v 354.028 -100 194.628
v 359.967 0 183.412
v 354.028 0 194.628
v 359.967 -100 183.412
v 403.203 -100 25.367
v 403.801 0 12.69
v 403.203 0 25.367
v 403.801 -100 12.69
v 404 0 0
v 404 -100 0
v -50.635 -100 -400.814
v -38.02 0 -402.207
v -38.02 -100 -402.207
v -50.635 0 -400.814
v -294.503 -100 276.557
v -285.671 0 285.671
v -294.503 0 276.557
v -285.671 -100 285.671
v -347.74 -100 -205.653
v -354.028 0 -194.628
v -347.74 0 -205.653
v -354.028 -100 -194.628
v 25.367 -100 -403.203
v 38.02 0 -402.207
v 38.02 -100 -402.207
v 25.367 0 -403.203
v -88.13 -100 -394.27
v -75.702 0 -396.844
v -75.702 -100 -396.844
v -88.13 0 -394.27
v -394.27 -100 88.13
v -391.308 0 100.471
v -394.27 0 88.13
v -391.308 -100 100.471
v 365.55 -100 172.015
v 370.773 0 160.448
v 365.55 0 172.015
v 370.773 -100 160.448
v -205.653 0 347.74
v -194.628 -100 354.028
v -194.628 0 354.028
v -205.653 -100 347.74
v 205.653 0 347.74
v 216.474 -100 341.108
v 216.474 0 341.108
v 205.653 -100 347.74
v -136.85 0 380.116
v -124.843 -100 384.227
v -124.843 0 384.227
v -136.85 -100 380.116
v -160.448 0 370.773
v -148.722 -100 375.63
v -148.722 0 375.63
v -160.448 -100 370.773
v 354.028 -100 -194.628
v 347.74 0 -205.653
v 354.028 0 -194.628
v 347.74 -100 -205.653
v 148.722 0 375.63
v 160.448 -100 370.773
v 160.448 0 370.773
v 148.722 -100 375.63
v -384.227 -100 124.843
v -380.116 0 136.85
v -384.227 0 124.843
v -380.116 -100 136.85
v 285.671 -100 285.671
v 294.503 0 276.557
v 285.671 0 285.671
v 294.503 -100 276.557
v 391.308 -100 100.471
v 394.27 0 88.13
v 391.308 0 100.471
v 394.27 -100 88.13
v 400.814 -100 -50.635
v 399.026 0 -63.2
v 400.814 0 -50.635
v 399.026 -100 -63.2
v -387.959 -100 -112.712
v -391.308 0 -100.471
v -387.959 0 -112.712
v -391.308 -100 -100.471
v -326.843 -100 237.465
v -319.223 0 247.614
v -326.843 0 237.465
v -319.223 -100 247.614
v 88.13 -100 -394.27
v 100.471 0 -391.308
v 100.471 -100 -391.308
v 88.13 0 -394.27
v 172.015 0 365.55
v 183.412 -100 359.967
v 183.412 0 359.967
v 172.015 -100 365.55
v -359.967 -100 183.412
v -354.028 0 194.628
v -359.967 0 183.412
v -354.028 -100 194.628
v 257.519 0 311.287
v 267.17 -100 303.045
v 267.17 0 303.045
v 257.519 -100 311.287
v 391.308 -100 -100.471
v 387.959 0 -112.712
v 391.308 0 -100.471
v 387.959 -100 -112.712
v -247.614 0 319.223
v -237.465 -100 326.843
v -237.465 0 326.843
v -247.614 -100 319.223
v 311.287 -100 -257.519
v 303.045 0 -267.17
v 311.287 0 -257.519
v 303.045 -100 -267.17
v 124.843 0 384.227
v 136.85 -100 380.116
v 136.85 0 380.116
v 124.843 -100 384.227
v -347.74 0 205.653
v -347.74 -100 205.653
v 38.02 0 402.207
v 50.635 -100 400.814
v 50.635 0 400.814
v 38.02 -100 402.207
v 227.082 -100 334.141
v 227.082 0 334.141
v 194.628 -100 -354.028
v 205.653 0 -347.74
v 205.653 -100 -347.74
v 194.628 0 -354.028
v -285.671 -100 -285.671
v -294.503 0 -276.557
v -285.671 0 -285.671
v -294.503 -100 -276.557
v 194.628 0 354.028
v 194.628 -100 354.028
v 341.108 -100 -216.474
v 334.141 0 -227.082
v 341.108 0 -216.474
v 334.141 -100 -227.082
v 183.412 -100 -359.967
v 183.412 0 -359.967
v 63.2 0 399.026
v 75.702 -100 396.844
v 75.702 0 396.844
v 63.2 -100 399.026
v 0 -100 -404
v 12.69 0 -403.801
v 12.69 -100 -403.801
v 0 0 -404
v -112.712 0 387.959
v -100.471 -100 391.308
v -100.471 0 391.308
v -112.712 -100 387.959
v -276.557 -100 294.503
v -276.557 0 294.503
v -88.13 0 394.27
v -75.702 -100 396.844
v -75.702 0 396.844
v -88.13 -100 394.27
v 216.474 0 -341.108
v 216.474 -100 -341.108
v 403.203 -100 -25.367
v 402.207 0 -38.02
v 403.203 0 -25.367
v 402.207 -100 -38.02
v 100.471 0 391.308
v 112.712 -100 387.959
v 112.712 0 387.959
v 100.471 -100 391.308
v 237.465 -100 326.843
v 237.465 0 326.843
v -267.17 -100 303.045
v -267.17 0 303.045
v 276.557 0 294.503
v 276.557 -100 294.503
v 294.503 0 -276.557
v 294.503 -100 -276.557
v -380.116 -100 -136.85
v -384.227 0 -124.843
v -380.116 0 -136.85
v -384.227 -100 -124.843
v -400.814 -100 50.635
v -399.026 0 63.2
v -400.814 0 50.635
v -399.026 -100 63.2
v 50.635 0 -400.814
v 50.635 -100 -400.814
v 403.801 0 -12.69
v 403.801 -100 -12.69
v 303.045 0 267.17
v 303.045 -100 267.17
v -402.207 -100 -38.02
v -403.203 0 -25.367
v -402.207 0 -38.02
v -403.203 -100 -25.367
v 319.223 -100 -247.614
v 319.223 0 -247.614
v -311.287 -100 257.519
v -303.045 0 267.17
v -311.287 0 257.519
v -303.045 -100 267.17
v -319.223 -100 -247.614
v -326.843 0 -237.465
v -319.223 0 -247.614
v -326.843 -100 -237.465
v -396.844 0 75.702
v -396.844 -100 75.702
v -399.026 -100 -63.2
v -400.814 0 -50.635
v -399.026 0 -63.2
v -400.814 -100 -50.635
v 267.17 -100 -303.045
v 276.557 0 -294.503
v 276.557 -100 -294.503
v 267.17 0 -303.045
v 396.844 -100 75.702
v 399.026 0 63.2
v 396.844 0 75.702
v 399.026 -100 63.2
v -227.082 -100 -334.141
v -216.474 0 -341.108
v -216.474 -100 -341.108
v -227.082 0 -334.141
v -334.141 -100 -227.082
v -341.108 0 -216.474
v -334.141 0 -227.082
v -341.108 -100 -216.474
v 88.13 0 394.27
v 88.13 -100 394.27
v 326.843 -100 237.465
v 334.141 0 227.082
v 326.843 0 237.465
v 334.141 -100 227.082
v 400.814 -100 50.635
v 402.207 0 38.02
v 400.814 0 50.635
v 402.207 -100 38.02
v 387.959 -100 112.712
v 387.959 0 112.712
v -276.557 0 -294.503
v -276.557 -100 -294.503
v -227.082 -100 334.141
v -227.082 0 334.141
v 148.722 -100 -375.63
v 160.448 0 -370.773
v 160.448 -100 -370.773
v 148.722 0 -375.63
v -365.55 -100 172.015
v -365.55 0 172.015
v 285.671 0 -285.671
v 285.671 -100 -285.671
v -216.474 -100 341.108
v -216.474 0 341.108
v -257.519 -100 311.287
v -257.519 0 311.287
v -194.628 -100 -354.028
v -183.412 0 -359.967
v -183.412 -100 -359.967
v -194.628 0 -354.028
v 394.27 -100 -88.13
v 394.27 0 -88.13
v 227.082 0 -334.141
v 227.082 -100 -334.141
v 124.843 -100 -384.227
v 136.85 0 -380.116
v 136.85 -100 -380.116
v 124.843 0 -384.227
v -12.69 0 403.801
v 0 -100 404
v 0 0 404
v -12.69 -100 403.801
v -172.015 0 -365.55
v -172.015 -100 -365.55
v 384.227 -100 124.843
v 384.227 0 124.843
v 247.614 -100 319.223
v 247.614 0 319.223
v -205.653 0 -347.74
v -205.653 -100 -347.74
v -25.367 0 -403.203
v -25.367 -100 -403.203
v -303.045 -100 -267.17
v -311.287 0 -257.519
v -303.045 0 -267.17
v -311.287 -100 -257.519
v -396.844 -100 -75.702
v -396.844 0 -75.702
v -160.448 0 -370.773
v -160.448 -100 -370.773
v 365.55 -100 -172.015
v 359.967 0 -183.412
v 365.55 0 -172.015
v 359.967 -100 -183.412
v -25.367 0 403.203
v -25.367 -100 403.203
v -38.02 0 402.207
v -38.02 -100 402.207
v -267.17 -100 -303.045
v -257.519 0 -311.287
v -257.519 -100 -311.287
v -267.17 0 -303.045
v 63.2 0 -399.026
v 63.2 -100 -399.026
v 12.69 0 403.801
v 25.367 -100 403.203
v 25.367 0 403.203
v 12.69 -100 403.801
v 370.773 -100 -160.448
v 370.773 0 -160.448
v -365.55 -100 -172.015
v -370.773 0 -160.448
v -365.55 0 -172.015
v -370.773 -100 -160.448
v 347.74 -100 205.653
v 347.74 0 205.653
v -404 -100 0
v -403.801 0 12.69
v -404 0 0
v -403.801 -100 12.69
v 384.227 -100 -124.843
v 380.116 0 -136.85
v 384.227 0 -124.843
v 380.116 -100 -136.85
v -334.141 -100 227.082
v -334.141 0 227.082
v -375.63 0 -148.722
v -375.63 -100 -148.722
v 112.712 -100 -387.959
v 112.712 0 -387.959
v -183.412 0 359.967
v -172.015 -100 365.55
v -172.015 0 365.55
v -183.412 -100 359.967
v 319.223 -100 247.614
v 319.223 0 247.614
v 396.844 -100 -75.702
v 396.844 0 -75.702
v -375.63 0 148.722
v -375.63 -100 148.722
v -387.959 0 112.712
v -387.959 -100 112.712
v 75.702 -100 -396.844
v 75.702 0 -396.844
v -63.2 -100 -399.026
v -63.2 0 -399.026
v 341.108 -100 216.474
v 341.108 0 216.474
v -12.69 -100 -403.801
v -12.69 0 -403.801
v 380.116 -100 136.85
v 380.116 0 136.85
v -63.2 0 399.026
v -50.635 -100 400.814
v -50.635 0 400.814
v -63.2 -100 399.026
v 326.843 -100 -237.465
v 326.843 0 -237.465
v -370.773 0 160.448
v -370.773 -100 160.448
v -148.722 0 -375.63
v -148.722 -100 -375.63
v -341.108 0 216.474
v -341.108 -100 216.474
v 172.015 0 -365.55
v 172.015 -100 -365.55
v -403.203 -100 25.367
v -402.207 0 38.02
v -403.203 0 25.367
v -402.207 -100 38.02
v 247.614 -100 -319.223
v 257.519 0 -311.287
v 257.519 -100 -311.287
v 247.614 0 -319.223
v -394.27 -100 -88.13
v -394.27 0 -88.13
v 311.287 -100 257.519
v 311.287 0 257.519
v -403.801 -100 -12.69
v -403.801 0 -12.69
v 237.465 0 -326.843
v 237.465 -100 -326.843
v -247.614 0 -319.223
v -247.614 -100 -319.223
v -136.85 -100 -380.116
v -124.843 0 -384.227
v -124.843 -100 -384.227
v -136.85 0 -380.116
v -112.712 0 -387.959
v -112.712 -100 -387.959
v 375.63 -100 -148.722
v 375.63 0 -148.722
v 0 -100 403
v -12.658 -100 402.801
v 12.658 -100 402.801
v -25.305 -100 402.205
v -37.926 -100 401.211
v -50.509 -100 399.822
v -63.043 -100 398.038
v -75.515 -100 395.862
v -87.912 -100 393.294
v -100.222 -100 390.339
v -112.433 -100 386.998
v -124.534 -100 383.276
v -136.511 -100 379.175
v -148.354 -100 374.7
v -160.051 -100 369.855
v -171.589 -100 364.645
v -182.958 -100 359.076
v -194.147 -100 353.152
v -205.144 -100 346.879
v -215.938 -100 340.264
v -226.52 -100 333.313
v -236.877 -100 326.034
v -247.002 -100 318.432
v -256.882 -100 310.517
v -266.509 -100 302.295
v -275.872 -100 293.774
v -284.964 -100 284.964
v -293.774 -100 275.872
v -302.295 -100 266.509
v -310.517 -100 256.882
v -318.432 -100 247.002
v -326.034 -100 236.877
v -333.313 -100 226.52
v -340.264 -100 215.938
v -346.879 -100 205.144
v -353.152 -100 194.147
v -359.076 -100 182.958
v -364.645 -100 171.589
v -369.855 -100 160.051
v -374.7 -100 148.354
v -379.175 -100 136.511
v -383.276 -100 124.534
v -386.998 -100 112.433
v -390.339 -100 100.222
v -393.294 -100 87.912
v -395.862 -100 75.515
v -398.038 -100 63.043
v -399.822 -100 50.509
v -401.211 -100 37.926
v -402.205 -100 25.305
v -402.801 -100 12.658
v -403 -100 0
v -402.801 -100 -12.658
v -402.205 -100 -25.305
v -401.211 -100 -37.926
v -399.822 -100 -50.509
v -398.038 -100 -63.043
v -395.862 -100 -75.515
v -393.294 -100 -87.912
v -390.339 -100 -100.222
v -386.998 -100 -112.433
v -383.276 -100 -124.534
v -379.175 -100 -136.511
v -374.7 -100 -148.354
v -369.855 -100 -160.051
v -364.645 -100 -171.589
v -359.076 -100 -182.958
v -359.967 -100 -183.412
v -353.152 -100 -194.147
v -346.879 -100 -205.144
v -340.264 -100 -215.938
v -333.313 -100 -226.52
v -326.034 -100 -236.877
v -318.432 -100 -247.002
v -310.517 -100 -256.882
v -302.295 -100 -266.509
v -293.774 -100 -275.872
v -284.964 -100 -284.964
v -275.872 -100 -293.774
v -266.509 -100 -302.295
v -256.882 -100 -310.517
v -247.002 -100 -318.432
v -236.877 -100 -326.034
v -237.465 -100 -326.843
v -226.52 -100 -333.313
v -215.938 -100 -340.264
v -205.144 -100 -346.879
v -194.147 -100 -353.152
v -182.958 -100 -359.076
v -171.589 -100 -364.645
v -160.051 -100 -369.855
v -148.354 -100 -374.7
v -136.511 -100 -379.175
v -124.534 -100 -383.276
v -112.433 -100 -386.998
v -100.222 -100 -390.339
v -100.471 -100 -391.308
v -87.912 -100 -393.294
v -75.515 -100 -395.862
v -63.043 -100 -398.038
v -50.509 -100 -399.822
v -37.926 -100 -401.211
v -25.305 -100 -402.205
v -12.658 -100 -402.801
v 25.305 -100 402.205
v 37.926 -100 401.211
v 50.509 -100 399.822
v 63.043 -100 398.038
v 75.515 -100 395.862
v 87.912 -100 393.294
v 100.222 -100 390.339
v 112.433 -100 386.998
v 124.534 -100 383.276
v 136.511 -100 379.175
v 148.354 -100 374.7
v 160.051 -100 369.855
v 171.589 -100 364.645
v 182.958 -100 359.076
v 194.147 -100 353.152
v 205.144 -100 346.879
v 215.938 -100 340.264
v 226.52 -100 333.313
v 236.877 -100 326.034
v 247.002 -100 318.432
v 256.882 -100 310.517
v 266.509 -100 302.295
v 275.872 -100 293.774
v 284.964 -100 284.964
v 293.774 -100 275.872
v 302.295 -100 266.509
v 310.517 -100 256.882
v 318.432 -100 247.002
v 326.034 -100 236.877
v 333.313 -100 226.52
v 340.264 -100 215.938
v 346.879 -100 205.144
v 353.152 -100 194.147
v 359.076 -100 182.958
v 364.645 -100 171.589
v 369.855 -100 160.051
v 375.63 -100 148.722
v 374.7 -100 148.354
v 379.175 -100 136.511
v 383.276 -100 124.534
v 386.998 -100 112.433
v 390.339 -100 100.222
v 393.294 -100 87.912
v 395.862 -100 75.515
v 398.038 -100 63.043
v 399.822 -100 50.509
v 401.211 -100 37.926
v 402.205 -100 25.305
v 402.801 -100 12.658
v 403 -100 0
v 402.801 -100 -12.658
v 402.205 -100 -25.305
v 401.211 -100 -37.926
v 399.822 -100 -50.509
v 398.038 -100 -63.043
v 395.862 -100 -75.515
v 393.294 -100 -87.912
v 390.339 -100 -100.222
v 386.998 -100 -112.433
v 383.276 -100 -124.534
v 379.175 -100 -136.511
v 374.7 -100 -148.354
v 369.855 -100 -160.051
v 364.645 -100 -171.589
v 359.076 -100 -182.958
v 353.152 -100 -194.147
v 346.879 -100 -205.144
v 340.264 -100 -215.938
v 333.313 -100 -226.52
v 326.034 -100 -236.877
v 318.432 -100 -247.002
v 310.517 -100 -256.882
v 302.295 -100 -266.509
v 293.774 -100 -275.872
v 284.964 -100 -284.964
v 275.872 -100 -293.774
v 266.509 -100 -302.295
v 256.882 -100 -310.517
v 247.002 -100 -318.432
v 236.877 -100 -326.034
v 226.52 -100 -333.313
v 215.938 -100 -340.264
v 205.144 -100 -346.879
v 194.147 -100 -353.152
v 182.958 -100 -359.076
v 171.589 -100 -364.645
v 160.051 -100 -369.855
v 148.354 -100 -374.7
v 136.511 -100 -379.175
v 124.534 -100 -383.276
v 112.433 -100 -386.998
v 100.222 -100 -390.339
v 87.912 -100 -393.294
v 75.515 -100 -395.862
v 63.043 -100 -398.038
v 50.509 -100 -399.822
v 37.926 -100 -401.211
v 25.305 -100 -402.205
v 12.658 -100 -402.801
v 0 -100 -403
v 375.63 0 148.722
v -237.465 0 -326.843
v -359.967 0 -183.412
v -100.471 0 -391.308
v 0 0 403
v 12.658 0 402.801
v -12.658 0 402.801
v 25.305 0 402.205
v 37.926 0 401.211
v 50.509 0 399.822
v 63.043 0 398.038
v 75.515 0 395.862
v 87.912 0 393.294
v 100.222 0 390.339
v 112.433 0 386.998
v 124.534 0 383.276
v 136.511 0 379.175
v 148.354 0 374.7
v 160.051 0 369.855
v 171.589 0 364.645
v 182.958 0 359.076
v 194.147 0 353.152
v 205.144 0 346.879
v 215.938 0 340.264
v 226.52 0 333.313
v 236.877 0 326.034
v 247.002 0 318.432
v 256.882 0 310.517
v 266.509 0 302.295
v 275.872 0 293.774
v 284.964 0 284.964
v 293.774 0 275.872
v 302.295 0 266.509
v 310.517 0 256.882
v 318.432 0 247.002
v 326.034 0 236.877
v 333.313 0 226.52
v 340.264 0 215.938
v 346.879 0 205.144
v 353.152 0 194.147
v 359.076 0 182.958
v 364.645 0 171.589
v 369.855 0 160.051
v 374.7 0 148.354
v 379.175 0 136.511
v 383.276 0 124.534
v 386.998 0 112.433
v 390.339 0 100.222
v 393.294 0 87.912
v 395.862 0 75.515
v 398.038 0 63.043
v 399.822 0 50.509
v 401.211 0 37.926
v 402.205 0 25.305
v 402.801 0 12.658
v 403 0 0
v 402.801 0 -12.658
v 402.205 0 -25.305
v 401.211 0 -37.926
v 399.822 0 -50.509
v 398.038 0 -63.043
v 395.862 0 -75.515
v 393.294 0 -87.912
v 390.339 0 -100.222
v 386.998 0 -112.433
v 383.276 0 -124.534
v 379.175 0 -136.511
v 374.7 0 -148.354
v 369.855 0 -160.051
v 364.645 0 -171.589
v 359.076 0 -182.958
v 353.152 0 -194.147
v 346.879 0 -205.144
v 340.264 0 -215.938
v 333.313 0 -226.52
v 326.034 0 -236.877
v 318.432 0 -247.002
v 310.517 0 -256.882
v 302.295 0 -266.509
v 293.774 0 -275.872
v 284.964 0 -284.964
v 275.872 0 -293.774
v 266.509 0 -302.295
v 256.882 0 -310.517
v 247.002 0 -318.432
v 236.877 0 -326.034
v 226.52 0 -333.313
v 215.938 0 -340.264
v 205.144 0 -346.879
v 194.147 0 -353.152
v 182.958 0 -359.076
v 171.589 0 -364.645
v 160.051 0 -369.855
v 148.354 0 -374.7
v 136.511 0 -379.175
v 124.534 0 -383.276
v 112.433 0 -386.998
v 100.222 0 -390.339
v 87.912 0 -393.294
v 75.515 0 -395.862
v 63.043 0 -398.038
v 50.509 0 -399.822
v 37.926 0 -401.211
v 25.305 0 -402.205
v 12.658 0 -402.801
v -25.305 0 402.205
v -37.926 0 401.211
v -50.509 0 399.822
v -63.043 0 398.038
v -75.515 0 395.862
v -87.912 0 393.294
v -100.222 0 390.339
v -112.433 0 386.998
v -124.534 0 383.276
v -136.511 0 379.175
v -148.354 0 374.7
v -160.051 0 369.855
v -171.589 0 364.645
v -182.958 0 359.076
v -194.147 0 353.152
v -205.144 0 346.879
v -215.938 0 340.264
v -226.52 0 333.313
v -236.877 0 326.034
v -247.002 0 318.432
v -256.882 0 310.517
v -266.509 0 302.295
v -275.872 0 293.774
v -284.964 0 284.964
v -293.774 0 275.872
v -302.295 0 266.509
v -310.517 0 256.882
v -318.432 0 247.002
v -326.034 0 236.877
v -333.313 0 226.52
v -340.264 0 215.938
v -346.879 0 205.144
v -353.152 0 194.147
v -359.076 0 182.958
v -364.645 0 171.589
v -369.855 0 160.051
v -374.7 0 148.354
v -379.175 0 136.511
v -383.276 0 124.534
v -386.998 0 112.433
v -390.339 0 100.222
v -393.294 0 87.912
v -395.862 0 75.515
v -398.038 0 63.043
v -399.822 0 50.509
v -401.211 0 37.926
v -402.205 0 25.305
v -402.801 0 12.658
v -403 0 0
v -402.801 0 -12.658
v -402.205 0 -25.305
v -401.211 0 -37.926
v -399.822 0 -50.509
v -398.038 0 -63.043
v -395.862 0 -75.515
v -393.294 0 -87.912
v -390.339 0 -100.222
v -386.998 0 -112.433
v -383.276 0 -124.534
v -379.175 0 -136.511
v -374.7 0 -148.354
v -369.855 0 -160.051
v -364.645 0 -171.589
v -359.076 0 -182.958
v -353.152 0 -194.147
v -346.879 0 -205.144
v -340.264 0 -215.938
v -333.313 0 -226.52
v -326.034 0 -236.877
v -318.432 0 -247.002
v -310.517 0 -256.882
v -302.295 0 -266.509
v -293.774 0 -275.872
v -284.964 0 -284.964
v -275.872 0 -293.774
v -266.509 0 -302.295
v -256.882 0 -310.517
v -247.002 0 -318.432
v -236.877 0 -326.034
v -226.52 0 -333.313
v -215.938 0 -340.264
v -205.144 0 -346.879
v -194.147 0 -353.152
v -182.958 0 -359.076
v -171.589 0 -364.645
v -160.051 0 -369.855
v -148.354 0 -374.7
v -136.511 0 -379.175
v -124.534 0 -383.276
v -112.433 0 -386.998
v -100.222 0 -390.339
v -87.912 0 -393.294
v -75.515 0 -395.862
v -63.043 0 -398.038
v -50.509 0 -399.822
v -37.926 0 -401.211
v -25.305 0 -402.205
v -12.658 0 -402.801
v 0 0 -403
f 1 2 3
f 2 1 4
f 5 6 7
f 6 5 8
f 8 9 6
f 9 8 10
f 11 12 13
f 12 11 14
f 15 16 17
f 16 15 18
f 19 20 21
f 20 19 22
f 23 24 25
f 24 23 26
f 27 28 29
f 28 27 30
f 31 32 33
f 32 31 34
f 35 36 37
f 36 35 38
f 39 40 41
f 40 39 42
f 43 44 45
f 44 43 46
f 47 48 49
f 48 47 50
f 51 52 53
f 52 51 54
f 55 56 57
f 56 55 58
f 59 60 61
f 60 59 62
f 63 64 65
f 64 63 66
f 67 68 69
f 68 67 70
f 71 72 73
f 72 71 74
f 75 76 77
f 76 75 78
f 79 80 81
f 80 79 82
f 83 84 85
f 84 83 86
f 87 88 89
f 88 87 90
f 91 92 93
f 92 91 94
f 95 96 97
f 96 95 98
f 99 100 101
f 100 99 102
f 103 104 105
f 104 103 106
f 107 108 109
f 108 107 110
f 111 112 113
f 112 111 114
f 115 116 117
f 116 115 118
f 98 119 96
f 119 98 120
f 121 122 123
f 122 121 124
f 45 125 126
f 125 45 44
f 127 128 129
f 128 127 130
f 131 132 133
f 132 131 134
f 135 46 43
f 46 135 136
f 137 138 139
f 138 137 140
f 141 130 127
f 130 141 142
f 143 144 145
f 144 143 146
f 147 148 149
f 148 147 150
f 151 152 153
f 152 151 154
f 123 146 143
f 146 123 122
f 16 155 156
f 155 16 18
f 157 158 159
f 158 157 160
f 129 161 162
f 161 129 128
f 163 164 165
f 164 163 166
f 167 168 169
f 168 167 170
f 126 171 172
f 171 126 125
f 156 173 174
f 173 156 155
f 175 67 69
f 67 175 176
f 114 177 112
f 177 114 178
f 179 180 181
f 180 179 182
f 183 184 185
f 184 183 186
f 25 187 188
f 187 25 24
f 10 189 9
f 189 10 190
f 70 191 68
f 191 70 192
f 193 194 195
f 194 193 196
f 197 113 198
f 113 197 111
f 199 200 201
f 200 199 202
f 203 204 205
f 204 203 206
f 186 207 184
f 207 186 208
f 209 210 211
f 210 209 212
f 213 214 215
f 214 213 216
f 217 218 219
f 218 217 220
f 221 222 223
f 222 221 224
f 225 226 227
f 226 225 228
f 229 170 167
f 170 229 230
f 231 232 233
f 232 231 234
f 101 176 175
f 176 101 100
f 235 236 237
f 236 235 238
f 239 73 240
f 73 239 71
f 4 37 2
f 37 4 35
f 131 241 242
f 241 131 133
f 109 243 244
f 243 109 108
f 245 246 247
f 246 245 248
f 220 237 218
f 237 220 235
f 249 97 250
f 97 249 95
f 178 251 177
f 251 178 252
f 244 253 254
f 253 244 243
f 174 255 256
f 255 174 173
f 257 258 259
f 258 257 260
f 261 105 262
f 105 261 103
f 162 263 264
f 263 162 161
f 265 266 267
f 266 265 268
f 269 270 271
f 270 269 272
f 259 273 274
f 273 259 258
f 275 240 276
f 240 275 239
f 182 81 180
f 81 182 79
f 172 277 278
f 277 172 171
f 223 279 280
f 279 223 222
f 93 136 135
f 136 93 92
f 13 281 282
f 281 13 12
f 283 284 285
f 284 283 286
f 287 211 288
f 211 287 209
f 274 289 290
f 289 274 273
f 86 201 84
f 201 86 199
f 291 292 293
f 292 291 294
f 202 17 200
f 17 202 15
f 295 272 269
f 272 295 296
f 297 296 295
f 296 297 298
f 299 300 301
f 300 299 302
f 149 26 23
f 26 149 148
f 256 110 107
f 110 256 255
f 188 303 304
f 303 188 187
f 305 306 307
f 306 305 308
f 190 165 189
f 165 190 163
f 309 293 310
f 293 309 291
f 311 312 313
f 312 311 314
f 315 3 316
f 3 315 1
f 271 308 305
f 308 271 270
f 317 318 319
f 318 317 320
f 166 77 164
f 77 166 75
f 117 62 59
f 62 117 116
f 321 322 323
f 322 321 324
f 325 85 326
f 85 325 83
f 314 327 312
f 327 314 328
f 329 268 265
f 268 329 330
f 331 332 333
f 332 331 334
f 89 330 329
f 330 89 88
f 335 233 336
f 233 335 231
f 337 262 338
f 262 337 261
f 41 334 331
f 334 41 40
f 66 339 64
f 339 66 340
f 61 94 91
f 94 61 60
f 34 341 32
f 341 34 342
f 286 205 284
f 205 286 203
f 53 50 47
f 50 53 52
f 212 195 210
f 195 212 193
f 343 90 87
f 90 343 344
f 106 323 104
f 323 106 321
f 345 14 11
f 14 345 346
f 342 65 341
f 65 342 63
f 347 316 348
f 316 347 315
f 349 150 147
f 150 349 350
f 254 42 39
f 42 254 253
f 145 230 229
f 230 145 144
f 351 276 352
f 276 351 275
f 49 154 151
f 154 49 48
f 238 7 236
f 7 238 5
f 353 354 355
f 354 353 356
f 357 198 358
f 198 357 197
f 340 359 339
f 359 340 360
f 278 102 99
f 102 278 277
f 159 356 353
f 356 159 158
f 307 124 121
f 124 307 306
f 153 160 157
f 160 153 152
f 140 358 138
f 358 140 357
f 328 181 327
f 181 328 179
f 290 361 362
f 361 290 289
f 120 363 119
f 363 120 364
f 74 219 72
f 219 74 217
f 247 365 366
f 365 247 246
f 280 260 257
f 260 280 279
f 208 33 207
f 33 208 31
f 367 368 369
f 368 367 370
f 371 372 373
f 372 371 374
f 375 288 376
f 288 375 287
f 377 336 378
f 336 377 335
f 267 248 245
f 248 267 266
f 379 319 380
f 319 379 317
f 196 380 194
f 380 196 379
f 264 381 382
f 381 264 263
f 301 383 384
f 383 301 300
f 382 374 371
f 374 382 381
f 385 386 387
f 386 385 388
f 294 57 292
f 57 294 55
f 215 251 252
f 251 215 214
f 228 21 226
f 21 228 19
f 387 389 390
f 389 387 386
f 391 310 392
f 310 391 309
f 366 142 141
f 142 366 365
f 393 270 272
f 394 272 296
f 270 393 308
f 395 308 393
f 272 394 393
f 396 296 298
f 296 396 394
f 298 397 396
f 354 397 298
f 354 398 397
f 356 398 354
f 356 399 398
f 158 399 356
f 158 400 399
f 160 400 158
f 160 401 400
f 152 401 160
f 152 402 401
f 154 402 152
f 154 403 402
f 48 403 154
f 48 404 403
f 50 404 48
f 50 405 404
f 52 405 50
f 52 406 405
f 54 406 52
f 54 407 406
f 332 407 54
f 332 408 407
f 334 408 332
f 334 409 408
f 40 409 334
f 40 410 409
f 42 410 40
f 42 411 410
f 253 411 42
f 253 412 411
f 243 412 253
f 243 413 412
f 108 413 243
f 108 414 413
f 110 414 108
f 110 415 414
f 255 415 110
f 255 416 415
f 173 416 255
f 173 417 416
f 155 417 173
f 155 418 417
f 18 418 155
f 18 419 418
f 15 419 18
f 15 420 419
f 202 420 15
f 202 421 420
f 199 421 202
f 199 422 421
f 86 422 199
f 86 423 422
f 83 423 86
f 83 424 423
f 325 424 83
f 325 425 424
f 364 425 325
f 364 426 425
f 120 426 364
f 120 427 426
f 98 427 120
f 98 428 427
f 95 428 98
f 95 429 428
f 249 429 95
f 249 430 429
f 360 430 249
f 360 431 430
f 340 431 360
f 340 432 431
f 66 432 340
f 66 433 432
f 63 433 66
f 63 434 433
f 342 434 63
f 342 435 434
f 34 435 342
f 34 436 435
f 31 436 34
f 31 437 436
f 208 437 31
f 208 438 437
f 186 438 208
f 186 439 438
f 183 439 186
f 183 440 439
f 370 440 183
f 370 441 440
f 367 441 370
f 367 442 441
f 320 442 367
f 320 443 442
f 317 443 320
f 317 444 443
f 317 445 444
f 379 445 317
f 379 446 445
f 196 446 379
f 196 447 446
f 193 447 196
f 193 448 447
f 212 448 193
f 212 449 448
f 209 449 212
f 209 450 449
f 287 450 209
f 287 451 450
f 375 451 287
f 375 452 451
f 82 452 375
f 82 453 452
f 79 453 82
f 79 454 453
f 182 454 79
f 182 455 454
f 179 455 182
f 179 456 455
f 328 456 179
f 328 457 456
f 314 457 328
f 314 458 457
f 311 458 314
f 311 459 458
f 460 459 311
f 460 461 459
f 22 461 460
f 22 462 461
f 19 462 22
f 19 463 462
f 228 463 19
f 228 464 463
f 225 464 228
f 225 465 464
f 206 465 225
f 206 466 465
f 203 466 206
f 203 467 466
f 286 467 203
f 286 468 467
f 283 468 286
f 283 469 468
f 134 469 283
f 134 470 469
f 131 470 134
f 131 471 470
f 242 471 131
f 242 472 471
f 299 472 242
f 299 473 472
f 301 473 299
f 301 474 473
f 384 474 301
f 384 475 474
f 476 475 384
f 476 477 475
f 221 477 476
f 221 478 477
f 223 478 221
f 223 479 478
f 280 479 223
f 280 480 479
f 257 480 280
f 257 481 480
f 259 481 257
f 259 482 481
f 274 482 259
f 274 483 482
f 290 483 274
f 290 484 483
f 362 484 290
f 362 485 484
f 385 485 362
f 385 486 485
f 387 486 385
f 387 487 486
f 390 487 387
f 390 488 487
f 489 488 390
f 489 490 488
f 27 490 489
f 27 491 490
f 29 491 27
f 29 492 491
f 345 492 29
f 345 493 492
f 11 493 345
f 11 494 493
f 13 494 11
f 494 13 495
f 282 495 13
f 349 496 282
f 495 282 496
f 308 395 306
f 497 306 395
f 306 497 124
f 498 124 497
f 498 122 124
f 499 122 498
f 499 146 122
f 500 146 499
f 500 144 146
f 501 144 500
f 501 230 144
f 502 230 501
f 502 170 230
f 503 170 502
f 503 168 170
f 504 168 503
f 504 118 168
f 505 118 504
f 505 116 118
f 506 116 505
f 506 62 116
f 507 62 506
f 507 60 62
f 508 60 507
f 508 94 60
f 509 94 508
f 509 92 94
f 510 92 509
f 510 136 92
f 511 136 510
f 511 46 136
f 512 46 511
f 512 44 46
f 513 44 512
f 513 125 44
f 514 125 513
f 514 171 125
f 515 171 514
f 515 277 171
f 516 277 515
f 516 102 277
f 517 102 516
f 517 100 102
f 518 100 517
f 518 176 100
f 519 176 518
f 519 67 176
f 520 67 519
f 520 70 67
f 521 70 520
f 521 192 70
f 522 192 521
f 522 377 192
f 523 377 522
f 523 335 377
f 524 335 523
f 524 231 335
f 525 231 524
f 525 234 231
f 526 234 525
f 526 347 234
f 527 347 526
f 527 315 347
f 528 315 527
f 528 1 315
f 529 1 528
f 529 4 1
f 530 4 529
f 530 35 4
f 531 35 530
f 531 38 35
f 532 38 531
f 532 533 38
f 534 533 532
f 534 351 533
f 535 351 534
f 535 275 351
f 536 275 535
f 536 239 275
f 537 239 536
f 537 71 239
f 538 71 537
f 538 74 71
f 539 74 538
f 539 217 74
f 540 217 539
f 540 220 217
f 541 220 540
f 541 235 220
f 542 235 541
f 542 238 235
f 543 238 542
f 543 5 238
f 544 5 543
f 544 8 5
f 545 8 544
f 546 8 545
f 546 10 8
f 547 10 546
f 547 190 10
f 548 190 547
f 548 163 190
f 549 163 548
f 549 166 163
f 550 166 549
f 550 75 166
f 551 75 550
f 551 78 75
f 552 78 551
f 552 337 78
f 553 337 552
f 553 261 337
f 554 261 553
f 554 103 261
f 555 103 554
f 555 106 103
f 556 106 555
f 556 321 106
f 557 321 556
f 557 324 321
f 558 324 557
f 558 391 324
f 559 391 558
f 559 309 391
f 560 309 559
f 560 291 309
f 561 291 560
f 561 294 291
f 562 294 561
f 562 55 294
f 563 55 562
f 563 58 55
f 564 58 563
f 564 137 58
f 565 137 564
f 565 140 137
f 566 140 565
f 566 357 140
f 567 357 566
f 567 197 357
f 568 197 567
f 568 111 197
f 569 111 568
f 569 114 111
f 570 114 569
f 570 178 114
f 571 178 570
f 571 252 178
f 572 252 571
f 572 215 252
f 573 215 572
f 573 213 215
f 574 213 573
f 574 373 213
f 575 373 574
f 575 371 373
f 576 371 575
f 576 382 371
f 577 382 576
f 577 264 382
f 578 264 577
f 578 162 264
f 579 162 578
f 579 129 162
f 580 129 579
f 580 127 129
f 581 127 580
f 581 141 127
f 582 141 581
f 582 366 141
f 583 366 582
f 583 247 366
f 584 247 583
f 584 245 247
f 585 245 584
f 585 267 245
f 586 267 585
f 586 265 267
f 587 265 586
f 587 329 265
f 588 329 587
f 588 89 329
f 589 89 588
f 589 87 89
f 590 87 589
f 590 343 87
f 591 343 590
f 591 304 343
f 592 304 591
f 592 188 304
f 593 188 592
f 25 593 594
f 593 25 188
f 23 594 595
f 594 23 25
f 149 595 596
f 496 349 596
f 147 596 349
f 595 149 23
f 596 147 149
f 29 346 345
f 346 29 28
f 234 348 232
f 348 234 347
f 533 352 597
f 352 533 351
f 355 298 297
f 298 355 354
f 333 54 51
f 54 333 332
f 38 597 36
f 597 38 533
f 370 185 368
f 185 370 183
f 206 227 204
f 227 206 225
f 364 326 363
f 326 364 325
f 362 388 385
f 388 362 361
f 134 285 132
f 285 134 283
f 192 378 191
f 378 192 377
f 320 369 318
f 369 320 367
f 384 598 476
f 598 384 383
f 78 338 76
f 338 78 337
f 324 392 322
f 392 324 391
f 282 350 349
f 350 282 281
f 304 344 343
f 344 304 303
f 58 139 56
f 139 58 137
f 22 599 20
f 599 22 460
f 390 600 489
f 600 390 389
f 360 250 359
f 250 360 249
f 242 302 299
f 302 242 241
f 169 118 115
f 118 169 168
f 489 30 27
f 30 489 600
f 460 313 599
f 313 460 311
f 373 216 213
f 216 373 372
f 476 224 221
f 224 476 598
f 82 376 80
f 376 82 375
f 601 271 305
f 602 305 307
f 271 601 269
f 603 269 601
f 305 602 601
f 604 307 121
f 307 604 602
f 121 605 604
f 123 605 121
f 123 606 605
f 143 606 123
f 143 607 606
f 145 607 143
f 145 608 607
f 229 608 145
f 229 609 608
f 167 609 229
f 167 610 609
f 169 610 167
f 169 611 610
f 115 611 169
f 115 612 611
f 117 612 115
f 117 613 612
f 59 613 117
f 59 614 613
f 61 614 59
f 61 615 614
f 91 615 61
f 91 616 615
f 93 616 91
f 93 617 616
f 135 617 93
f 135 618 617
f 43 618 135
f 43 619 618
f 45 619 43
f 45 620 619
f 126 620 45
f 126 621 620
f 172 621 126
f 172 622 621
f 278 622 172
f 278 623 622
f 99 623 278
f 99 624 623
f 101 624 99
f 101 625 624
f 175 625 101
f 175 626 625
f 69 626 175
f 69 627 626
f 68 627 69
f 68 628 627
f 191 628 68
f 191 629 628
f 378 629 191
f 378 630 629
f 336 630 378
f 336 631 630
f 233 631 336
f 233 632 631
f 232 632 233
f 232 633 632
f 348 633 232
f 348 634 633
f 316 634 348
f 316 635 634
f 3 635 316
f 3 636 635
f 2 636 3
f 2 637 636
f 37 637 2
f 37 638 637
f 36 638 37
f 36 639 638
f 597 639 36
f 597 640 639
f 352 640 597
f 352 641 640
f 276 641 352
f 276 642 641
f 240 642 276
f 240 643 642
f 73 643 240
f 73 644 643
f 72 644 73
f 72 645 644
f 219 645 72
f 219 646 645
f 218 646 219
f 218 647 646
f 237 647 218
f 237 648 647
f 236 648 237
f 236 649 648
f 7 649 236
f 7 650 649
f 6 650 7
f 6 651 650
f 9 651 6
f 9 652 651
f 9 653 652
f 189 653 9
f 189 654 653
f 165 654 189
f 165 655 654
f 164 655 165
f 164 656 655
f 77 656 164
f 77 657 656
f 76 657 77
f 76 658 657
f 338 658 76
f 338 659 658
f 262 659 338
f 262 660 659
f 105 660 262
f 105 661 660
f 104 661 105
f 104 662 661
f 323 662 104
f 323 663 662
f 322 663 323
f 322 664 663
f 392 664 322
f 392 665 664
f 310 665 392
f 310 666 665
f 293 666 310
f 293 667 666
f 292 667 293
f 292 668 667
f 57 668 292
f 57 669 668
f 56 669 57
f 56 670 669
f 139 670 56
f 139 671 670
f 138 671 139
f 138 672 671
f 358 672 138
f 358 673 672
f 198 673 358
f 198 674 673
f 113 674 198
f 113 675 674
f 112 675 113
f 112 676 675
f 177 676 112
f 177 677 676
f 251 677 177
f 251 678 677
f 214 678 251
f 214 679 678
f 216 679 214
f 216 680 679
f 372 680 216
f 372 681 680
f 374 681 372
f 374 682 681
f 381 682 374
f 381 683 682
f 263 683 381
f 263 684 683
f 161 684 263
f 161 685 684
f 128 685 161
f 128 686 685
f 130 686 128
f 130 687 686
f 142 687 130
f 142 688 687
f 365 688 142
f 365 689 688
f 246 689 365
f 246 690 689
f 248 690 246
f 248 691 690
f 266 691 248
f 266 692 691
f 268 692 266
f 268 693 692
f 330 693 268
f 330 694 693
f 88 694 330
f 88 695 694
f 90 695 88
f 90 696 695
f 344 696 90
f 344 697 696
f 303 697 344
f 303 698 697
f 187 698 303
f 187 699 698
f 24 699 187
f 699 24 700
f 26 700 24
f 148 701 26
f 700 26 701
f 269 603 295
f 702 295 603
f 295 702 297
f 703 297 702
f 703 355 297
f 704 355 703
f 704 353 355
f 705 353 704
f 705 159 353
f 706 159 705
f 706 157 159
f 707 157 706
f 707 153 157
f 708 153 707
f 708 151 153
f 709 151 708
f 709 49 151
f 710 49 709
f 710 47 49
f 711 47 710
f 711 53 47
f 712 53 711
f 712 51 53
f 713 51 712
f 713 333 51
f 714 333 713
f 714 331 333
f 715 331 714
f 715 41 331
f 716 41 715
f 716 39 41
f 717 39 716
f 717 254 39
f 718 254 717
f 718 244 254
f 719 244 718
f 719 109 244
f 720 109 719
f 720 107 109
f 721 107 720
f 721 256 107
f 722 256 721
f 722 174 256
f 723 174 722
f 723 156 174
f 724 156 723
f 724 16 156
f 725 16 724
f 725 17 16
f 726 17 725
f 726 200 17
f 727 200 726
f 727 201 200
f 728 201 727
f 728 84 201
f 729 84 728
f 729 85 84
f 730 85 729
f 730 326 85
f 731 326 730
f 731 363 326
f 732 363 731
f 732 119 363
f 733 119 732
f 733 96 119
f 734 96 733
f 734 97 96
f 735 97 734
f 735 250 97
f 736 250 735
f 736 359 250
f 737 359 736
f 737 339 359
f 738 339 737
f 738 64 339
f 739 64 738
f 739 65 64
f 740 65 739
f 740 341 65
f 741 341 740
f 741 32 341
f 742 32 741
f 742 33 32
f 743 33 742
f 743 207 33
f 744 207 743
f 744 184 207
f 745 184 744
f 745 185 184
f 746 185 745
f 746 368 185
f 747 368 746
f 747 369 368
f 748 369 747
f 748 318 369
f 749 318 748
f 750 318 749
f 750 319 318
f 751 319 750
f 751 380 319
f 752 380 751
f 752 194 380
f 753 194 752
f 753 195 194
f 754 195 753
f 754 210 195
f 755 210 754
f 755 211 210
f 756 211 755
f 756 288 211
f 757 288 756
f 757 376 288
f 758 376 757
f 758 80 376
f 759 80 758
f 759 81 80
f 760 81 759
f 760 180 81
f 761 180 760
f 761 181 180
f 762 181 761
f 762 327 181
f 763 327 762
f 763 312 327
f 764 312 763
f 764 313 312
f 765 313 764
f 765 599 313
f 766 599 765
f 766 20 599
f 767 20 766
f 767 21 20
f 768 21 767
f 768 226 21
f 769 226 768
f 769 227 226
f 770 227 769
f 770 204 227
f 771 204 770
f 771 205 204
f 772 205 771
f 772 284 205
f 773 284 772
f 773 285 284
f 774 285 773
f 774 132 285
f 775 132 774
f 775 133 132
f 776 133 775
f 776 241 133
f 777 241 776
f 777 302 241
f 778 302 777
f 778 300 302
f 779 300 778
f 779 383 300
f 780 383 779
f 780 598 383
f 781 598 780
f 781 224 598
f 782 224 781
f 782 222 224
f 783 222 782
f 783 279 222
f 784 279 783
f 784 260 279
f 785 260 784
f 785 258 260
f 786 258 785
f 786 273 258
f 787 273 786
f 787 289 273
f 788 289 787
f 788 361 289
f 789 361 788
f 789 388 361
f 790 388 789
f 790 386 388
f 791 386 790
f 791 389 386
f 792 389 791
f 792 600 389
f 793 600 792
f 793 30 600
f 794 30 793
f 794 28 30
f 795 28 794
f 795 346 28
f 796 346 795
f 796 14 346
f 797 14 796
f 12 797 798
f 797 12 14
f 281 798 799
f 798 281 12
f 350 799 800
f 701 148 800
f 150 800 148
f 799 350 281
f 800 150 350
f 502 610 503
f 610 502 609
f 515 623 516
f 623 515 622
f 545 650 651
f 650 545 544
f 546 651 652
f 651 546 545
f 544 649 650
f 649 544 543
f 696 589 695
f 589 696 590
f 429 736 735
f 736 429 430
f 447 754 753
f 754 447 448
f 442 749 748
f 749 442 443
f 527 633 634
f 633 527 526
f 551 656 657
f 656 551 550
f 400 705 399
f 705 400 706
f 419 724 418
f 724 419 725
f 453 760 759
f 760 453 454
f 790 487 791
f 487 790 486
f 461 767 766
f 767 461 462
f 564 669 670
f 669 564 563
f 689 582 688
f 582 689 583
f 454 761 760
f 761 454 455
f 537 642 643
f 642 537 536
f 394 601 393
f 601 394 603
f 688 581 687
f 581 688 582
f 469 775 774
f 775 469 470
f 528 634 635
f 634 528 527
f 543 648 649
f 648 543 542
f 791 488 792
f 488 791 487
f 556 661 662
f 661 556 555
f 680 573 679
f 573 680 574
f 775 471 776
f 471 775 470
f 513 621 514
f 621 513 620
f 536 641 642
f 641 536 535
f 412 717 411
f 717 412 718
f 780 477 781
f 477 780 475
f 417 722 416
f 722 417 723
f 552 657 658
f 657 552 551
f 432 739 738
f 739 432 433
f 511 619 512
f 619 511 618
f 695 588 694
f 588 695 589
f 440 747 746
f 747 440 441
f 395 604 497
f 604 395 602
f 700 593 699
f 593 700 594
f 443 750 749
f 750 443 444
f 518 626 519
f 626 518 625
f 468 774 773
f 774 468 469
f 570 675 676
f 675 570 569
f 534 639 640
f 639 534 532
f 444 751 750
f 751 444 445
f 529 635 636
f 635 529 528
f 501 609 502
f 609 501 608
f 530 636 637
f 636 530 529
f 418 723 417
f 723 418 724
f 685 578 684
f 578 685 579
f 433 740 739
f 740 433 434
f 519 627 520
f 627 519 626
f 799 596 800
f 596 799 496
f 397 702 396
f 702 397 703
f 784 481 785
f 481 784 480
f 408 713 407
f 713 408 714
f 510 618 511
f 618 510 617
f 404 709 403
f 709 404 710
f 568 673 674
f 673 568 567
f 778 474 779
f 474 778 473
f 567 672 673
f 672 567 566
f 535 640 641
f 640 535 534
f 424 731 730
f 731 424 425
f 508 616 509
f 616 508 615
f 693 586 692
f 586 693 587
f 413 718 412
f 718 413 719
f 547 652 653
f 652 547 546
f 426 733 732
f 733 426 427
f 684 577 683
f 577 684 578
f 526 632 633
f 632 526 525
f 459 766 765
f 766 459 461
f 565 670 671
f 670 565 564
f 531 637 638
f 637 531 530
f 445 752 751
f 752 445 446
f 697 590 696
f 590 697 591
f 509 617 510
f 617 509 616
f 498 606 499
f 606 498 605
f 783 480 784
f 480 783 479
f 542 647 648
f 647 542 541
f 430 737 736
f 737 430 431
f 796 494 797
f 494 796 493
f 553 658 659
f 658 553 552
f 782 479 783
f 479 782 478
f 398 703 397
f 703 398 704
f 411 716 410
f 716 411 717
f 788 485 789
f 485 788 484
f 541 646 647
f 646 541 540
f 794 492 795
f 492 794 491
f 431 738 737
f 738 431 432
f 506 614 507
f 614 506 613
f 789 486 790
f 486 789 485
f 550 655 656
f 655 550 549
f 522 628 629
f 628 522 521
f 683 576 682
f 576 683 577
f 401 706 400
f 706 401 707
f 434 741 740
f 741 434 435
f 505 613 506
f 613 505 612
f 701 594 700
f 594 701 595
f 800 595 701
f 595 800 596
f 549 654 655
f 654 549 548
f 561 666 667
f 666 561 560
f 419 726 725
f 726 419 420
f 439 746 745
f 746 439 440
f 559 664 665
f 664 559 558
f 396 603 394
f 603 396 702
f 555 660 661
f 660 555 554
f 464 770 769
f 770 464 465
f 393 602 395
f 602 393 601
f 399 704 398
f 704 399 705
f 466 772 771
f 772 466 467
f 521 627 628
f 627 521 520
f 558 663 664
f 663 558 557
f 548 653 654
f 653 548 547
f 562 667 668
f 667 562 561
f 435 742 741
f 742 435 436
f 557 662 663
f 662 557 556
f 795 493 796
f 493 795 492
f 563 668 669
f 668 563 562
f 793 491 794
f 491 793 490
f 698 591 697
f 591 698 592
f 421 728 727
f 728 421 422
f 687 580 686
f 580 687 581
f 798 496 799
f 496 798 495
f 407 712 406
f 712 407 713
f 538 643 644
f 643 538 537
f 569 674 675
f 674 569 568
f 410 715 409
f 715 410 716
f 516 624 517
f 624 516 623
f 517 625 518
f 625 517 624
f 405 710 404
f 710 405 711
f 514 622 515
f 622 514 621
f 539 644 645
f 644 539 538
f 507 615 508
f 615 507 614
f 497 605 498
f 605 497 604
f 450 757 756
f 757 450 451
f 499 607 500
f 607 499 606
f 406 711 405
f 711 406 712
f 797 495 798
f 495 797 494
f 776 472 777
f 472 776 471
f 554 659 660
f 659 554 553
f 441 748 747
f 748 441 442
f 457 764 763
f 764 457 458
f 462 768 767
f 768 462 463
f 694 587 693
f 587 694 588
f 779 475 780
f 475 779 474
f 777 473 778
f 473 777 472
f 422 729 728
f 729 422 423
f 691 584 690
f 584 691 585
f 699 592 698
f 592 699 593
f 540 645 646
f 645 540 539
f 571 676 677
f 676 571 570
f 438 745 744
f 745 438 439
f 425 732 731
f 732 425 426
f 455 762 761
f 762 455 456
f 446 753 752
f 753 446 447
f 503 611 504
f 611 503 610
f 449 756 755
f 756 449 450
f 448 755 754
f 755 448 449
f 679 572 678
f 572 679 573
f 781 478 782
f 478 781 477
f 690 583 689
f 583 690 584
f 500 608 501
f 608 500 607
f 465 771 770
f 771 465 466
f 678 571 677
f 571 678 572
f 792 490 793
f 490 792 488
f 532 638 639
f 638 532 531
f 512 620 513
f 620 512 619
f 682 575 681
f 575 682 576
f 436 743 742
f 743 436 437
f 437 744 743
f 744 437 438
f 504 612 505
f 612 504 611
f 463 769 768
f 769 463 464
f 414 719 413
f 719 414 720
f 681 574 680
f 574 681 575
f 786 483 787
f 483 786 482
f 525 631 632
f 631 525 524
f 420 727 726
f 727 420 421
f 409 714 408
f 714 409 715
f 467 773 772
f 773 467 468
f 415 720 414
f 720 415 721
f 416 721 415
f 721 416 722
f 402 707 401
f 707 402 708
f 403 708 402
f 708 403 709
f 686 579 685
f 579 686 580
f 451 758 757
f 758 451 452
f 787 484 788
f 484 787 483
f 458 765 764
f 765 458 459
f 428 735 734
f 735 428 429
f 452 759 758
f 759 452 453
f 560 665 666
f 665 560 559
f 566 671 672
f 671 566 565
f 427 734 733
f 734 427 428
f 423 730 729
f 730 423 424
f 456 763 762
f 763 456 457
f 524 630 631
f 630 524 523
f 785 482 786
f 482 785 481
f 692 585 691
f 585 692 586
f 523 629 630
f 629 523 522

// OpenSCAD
rotate(a=[90,0,0]){
difference(){
cylinder(100,404,404,$fn = 200);
cylinder(100,403,403,$fn = 200);
    
};
}
